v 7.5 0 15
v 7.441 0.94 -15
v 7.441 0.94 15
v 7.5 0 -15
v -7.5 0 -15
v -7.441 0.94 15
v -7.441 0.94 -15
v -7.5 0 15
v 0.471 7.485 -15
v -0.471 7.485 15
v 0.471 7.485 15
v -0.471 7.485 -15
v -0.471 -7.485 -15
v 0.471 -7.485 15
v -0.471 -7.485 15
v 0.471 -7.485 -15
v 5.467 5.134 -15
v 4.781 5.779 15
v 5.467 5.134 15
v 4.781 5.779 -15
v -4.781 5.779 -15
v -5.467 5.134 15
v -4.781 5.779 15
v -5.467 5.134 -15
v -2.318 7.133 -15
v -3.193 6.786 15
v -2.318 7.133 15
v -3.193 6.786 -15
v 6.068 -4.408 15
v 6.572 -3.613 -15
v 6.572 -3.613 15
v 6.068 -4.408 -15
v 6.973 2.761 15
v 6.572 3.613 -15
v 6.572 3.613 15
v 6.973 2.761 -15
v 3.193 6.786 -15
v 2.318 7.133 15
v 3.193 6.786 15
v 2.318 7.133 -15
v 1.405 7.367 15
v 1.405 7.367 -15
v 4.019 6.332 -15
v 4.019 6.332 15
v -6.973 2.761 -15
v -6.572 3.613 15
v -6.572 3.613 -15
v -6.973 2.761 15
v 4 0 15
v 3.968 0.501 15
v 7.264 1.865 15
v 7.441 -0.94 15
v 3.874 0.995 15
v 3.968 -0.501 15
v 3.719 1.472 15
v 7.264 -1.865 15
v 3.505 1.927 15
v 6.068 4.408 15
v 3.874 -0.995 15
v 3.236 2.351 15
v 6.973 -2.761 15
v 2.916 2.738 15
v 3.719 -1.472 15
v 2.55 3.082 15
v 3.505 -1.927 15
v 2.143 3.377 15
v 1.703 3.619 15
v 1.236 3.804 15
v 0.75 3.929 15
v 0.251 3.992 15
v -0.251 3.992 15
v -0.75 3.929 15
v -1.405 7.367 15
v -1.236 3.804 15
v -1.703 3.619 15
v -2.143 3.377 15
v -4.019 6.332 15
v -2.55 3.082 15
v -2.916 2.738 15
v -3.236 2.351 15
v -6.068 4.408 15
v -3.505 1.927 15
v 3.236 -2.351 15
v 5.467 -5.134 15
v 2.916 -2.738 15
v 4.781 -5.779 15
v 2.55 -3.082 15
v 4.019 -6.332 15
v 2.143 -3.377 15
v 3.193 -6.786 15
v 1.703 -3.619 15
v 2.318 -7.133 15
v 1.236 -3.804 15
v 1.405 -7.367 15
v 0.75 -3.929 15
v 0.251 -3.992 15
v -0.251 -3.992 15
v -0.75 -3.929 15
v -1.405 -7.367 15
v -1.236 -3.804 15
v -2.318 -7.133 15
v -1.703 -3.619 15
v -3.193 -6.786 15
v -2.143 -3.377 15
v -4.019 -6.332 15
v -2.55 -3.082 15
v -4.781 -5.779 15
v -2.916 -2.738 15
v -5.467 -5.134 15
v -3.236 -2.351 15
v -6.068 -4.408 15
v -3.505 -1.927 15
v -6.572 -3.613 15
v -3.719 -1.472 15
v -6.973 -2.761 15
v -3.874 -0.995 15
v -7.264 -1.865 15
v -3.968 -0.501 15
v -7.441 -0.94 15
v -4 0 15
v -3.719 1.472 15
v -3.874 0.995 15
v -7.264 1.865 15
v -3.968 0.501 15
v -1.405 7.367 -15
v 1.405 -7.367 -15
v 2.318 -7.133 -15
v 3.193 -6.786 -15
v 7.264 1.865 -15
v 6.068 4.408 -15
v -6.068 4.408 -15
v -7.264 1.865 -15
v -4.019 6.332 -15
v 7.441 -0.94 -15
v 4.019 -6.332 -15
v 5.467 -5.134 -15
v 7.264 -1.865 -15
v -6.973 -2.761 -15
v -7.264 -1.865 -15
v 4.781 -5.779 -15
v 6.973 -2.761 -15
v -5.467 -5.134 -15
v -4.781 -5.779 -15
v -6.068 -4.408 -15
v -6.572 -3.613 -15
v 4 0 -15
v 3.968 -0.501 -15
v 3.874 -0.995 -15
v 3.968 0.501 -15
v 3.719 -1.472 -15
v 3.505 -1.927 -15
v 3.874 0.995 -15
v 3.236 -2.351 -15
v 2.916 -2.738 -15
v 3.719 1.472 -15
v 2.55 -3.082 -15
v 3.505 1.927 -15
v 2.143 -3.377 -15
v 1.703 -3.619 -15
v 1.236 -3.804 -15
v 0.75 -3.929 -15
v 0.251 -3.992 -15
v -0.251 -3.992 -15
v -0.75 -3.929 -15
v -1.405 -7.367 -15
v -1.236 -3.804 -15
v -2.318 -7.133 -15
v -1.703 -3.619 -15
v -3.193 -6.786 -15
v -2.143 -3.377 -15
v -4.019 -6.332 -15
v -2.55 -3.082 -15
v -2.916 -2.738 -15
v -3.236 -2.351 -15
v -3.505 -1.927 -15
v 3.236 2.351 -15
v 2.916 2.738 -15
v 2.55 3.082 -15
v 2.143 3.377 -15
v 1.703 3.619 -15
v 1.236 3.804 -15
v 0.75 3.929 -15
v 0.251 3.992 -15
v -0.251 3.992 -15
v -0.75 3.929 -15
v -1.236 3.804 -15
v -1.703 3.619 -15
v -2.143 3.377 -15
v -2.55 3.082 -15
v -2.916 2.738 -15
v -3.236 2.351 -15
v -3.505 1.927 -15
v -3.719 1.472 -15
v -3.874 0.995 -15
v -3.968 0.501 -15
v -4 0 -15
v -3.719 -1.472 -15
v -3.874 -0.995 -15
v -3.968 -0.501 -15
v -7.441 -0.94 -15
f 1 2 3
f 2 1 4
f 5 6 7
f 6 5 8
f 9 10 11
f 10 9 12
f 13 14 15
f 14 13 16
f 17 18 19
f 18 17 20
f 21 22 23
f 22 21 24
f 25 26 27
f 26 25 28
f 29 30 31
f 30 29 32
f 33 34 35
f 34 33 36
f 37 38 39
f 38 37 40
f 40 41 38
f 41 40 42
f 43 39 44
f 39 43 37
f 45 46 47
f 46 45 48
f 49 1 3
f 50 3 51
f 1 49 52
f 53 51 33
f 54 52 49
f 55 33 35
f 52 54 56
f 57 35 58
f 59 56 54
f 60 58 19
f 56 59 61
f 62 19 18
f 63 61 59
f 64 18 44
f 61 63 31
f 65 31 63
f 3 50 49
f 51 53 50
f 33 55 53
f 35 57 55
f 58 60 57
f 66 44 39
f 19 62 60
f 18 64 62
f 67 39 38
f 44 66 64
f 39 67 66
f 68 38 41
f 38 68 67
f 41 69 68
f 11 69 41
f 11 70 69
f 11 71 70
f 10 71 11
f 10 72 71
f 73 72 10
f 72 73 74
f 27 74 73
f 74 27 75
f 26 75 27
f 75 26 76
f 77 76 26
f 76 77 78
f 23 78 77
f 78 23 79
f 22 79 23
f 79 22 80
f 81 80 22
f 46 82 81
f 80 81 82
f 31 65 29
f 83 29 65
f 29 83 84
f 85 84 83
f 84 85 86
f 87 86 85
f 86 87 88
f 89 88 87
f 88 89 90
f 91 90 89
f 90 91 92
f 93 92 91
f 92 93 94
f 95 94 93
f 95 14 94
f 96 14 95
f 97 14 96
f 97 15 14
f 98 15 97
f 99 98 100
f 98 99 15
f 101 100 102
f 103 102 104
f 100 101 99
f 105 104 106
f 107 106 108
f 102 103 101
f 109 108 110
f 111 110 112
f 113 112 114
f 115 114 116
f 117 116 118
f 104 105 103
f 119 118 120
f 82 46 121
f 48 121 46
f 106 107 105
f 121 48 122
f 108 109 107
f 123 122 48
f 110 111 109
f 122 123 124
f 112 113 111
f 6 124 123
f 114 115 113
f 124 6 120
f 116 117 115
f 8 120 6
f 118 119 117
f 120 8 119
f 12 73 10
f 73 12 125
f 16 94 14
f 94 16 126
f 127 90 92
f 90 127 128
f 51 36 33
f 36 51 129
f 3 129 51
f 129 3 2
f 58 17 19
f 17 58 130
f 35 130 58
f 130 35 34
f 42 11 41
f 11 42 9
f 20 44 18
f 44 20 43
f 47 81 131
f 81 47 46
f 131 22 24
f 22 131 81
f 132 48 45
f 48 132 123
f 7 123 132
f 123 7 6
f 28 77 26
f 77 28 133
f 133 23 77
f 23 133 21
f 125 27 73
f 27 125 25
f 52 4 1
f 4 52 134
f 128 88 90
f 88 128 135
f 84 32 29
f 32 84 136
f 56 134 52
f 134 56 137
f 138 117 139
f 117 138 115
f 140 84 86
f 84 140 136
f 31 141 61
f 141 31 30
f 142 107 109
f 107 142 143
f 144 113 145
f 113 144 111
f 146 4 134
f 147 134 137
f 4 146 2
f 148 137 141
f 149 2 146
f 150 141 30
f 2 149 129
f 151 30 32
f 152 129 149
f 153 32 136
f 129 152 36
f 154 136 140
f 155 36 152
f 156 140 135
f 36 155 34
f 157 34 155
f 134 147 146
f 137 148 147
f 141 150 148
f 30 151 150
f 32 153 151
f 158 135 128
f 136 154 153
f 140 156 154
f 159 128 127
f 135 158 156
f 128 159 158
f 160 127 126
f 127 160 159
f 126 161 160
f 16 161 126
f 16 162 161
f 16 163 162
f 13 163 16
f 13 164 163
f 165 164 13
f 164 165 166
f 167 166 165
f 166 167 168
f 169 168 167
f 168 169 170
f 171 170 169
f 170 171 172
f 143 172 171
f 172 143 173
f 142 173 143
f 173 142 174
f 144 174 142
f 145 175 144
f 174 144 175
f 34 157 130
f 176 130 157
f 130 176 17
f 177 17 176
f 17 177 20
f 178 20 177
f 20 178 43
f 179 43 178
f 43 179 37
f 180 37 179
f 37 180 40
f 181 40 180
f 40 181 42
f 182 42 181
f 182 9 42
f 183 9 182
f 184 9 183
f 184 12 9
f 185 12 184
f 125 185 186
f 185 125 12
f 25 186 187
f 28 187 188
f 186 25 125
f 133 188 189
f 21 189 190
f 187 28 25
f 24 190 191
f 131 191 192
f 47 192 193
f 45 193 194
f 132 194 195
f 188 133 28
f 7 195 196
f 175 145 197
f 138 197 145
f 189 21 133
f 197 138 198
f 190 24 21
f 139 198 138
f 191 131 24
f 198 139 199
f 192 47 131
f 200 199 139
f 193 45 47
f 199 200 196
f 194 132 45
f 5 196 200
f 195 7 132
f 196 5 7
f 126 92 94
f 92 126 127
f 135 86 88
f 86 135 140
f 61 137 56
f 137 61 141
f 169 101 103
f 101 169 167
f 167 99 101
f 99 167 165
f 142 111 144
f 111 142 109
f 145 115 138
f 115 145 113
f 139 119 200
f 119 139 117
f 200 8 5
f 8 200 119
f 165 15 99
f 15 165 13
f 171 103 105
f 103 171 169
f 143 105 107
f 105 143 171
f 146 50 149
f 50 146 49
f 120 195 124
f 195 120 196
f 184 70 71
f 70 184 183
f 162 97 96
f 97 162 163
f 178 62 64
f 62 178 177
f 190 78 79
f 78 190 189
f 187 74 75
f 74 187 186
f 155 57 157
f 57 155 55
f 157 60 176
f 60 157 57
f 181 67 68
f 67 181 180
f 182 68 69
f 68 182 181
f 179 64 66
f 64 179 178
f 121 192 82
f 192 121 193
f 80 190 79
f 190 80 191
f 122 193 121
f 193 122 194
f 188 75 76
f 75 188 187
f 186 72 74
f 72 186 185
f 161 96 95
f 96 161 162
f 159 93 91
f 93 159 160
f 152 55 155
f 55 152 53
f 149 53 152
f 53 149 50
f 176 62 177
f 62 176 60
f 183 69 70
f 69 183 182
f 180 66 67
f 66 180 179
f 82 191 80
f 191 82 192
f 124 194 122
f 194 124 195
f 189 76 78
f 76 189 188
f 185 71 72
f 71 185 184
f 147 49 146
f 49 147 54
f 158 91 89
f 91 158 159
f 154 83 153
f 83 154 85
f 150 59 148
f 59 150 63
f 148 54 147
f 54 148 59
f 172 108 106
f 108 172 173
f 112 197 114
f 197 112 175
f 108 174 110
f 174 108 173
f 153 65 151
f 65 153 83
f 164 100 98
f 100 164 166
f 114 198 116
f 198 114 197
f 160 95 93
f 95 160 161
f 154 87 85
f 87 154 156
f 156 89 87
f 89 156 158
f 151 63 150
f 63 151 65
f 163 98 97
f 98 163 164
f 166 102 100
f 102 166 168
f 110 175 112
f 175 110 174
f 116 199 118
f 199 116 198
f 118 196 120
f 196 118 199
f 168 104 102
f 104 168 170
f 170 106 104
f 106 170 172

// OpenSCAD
$fn = 50;


difference() {
	union() {
		translate(v = [0, 0, -15.0000000000]) {
			cylinder(h = 30, r = 7.5000000000);
		}
	}
	union() {
		translate(v = [0, 0, -100.0000000000]) {
			cylinder(h = 200, r = 4.0000000000);
		}
	}
}
